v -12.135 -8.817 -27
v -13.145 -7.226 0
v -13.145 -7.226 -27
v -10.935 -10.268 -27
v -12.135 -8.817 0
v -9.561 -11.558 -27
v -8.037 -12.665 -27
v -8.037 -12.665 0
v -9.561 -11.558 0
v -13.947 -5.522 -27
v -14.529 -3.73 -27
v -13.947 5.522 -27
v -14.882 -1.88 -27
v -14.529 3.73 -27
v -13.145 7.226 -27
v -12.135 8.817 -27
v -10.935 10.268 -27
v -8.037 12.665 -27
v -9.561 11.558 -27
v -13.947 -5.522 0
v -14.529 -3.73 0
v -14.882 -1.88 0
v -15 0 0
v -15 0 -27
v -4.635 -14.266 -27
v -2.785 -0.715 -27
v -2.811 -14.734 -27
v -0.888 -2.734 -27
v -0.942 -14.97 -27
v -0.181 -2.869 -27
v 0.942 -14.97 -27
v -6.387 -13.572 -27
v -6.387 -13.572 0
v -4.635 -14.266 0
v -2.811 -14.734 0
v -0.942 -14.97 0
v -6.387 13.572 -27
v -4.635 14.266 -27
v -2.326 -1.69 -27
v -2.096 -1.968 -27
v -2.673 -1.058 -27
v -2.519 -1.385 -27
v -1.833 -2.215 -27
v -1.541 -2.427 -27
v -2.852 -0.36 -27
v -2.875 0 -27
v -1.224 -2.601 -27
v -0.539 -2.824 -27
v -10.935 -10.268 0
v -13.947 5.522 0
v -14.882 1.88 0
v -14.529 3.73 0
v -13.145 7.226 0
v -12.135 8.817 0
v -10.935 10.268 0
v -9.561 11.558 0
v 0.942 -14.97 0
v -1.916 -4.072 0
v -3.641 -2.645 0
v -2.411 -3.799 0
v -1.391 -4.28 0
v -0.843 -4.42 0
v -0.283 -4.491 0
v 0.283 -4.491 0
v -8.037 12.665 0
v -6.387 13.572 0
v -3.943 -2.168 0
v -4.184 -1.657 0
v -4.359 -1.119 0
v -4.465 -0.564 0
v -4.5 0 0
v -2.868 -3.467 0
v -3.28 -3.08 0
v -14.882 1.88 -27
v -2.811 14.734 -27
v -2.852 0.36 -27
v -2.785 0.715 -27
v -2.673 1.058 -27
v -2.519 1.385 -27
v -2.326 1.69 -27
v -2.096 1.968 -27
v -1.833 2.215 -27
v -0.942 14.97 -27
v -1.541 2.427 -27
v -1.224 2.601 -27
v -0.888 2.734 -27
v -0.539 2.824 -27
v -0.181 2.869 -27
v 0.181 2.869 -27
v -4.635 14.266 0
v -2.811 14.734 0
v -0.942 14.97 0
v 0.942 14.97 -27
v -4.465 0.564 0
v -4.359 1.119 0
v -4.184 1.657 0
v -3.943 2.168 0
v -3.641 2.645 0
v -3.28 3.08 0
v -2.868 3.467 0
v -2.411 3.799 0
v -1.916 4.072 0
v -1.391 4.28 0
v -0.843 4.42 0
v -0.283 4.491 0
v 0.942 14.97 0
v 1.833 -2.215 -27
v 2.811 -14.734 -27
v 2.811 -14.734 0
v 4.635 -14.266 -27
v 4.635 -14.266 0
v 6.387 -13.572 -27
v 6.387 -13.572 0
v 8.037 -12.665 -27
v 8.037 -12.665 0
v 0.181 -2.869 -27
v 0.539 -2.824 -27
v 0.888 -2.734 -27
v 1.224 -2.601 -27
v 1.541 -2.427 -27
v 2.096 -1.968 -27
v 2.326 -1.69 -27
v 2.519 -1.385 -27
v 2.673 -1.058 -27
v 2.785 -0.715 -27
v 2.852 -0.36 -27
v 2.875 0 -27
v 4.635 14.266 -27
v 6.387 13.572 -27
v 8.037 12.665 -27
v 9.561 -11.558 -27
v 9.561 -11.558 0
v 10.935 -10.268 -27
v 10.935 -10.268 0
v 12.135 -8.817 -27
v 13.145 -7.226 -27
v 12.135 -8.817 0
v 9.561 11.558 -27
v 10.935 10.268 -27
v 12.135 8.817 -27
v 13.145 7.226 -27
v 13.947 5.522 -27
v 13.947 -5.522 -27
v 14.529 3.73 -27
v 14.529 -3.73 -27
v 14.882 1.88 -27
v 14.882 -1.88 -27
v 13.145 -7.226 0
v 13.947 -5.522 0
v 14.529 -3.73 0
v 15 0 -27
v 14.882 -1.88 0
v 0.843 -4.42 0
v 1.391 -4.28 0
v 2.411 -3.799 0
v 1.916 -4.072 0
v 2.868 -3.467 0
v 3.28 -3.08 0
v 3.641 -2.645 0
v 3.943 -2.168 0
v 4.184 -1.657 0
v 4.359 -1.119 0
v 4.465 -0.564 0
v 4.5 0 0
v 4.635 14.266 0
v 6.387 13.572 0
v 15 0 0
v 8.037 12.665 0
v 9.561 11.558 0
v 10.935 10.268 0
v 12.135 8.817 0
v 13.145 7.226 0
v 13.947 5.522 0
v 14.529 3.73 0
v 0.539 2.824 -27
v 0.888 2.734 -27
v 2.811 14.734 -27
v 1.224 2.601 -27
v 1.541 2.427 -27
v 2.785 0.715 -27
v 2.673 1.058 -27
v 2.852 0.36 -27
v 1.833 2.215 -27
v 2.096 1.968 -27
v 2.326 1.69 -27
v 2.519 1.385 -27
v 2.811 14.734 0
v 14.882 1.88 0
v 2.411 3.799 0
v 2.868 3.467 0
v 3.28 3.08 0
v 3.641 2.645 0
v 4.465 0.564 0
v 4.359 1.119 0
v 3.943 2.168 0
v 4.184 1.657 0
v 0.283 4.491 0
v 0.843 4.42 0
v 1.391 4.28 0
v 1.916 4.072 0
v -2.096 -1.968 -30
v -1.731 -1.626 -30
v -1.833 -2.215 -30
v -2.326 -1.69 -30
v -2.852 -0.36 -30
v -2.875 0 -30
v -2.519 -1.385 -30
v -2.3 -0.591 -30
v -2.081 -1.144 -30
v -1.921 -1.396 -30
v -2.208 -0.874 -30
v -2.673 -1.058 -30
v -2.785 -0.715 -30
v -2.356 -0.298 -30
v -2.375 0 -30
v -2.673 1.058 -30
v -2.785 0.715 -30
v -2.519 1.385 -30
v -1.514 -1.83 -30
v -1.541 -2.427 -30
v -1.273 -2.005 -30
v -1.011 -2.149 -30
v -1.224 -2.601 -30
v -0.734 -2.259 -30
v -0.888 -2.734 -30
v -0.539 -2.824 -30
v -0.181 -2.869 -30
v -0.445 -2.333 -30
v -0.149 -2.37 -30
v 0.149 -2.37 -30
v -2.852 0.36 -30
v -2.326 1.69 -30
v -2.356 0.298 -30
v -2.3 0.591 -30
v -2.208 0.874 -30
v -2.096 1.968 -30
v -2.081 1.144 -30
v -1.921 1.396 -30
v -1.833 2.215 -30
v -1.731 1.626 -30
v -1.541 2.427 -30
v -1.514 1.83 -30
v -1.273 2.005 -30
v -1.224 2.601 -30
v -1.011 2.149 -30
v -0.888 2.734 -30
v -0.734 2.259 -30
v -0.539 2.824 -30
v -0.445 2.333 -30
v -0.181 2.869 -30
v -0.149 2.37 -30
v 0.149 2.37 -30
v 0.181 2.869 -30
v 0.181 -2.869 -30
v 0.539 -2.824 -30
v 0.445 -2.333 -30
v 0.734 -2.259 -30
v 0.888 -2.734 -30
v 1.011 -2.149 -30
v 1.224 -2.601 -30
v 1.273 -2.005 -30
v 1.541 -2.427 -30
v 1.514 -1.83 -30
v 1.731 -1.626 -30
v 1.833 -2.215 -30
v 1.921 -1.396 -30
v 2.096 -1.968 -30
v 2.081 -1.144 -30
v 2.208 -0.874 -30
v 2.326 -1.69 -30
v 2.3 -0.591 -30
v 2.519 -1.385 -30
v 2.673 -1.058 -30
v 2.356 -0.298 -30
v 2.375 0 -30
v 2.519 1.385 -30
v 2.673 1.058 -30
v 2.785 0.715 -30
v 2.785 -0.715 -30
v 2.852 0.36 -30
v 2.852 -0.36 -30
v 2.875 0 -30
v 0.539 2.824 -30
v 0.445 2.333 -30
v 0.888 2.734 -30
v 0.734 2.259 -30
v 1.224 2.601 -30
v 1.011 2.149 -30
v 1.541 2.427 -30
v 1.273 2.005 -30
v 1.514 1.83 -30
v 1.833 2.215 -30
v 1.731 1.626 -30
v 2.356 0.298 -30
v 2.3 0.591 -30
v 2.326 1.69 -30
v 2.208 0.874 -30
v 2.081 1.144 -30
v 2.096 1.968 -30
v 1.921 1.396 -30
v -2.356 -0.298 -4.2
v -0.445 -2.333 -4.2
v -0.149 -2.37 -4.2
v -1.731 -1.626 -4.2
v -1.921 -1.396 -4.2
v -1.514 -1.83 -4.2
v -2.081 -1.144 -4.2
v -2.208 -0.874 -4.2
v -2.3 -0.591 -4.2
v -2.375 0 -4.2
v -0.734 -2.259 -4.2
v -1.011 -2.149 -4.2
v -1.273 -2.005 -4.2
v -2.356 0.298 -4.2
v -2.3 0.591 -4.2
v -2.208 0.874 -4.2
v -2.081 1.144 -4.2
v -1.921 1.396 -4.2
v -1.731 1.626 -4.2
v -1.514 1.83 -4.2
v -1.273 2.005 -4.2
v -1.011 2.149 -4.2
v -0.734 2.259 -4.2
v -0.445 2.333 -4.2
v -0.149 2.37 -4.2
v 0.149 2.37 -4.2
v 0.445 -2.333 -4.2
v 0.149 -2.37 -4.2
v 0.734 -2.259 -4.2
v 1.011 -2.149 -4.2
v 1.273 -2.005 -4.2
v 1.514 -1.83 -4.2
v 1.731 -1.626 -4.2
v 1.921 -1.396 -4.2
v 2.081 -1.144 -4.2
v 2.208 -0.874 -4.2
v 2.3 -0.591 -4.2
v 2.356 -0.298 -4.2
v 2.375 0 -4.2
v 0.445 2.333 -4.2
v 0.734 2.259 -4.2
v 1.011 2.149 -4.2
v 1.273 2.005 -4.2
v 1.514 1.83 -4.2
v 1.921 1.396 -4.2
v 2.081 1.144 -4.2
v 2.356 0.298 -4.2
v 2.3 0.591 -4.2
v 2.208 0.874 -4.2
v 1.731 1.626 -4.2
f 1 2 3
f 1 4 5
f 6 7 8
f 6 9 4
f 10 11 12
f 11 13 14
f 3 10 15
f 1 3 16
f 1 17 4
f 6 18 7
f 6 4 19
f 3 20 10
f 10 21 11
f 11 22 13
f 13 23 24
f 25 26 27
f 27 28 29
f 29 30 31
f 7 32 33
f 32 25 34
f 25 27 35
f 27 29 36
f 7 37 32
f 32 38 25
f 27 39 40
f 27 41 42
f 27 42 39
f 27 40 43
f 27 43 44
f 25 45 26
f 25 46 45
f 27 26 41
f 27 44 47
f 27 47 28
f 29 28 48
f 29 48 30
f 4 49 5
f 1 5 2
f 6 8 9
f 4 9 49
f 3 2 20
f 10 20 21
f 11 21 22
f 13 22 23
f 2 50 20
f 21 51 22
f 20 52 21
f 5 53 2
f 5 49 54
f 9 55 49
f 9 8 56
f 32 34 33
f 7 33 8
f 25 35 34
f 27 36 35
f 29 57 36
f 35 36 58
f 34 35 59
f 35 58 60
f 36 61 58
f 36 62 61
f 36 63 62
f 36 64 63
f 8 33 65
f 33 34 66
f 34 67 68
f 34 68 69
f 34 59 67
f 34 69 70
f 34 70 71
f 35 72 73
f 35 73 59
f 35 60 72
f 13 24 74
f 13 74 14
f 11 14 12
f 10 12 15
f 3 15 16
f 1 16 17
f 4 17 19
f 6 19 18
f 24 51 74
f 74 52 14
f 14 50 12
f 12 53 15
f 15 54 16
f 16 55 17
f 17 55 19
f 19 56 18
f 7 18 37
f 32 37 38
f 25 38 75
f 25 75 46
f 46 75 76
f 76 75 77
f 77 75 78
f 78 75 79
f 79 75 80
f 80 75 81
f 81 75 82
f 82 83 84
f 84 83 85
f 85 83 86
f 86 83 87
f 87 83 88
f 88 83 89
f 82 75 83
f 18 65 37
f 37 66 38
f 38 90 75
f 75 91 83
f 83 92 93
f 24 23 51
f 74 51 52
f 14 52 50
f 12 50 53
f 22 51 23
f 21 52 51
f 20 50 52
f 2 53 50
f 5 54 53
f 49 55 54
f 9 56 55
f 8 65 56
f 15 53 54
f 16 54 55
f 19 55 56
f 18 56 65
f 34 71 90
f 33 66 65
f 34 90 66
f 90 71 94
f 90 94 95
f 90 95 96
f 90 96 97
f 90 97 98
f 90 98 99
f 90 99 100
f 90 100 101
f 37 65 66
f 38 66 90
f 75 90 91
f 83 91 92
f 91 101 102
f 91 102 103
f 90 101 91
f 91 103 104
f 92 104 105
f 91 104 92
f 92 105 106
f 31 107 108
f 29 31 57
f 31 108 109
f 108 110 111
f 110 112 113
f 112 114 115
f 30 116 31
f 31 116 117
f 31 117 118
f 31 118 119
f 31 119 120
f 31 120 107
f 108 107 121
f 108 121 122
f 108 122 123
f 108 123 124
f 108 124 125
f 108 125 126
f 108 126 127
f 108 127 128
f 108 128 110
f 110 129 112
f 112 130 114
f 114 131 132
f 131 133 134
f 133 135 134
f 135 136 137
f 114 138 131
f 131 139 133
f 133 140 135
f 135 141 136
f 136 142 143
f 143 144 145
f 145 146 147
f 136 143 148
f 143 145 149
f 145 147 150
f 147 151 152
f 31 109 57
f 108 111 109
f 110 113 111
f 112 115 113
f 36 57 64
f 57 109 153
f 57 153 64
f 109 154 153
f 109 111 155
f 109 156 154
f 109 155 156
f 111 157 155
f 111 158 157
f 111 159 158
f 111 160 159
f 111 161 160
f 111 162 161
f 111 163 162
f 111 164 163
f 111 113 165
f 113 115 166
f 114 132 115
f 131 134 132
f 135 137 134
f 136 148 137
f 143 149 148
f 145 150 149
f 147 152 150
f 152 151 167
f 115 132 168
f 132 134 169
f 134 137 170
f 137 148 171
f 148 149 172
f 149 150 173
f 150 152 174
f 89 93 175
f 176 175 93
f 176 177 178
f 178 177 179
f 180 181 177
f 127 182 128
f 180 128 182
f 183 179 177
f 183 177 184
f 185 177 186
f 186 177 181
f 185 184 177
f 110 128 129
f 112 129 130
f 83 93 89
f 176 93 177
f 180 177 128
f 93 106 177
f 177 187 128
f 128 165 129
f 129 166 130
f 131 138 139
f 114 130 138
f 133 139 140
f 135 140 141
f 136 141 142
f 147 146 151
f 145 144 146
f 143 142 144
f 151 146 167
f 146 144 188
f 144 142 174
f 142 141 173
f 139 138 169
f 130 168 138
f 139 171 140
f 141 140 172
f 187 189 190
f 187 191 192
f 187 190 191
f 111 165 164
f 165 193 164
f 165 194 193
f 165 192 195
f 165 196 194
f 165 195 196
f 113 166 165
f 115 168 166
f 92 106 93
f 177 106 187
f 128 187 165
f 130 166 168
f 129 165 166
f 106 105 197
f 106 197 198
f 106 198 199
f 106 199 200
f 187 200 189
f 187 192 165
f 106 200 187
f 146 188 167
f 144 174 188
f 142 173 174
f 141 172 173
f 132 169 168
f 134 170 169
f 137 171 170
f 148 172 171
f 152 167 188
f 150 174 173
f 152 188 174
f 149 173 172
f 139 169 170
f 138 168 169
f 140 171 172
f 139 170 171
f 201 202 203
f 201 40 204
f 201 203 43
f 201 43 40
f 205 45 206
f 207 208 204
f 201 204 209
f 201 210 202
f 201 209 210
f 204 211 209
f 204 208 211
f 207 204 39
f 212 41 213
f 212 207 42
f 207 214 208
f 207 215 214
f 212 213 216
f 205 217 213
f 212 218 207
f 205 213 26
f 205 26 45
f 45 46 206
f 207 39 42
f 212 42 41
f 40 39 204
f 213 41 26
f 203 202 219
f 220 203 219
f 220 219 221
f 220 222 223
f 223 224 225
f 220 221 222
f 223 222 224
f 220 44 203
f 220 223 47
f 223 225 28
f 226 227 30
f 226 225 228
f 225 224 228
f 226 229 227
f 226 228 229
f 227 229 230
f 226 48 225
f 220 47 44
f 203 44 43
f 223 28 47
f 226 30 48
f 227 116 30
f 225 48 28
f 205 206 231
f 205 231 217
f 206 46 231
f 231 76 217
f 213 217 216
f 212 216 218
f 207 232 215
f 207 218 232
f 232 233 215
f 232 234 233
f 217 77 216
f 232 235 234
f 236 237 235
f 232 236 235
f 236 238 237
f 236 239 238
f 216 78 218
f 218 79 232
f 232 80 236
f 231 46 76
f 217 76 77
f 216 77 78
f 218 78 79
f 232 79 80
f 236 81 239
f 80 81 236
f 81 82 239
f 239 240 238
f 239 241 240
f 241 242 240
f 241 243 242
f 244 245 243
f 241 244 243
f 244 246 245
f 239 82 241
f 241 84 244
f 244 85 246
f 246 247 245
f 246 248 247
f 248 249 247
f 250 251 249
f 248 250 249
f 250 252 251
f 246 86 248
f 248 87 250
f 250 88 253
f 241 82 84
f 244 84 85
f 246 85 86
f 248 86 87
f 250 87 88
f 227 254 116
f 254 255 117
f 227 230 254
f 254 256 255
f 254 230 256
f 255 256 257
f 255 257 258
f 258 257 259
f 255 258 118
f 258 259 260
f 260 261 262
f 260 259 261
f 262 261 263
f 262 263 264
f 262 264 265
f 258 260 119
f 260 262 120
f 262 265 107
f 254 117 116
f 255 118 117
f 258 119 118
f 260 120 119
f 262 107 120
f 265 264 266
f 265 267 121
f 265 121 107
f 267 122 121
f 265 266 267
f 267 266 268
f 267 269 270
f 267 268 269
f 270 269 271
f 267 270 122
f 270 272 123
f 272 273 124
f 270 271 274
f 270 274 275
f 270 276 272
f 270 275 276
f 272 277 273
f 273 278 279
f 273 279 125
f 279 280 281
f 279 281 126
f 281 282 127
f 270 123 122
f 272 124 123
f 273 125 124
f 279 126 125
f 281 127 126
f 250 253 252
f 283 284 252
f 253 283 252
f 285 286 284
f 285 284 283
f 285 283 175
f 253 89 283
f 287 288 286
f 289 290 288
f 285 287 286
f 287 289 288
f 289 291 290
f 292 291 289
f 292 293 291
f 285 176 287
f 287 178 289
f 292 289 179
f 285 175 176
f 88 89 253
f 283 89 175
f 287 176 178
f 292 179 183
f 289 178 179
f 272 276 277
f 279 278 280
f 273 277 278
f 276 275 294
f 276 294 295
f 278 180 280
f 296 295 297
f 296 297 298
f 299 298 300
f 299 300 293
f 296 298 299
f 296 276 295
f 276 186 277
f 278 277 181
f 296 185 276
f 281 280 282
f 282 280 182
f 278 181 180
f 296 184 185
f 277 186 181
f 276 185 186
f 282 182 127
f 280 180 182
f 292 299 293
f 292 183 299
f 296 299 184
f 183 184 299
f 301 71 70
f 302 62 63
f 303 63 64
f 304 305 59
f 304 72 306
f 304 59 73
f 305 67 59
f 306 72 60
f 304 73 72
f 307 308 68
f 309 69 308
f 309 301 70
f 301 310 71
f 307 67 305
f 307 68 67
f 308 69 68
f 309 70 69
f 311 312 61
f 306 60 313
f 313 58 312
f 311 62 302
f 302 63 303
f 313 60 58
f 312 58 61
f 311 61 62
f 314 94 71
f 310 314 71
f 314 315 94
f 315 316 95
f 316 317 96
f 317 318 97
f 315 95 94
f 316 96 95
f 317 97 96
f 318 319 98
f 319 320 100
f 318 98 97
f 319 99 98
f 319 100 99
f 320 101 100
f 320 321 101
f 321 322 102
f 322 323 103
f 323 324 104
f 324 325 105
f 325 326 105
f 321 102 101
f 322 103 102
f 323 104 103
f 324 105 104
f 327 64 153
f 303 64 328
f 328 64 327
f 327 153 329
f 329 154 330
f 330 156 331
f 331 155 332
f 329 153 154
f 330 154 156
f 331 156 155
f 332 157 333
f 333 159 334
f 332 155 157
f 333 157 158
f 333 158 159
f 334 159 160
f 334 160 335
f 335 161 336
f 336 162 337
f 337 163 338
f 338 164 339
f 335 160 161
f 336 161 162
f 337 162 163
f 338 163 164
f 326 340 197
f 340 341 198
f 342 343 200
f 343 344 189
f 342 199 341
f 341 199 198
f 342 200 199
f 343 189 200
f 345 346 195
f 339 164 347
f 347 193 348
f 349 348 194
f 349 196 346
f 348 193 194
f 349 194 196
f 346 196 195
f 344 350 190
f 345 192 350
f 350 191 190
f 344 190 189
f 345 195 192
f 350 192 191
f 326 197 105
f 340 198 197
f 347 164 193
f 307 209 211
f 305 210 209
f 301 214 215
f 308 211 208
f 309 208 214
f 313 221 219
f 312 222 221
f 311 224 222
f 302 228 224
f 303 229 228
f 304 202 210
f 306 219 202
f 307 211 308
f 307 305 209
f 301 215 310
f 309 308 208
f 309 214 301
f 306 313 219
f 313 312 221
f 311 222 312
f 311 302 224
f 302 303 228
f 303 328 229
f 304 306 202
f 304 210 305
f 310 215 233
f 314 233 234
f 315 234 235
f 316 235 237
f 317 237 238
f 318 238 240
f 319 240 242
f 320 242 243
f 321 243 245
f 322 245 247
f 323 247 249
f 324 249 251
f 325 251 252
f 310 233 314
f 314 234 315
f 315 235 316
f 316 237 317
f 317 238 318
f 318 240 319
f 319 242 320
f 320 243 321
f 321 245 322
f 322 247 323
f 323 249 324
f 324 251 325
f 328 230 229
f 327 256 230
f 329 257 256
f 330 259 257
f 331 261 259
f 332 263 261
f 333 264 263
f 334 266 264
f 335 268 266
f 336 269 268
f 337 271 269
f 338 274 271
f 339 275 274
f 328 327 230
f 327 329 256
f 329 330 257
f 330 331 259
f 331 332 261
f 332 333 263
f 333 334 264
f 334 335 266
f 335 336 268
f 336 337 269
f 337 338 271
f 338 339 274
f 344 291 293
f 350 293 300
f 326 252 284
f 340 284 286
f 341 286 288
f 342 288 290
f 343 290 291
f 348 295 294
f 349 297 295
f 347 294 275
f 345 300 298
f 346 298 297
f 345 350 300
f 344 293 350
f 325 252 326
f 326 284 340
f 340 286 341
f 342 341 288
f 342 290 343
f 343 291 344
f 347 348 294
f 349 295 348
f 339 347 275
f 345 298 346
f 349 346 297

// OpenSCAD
$fn = 50;

difference() {
	union() {
		translate(v = [0, 0, -27.0]) {
			cylinder(h = 27, r = 15.0);
		}
		#translate(v = [0, 0, -30.0]) {
			cylinder(h = 30, r = 2.875);
		}
	}
	union() {
		translate(v = [0, 0, 0]) {
			rotate(a = [0, 0, 0]) {
				difference() {
					union() {
						translate(v = [0, 0, -30.0]) {
							cylinder(h = 30, r = 2.25);
						}
						translate(v = [0, 0, -4.2]) {
							cylinder(h = 4.2, r1 = 2.375, r2 = 4.5);
						}
						translate(v = [0, 0, -30.0]) {
							cylinder(h = 30, r = 2.375);
						}
						translate(v = [0, 0, -30.0]) {
							cylinder(h = 30, r = 2.25);
						}
					}
					union();
				}
			}
		}
	}
}
